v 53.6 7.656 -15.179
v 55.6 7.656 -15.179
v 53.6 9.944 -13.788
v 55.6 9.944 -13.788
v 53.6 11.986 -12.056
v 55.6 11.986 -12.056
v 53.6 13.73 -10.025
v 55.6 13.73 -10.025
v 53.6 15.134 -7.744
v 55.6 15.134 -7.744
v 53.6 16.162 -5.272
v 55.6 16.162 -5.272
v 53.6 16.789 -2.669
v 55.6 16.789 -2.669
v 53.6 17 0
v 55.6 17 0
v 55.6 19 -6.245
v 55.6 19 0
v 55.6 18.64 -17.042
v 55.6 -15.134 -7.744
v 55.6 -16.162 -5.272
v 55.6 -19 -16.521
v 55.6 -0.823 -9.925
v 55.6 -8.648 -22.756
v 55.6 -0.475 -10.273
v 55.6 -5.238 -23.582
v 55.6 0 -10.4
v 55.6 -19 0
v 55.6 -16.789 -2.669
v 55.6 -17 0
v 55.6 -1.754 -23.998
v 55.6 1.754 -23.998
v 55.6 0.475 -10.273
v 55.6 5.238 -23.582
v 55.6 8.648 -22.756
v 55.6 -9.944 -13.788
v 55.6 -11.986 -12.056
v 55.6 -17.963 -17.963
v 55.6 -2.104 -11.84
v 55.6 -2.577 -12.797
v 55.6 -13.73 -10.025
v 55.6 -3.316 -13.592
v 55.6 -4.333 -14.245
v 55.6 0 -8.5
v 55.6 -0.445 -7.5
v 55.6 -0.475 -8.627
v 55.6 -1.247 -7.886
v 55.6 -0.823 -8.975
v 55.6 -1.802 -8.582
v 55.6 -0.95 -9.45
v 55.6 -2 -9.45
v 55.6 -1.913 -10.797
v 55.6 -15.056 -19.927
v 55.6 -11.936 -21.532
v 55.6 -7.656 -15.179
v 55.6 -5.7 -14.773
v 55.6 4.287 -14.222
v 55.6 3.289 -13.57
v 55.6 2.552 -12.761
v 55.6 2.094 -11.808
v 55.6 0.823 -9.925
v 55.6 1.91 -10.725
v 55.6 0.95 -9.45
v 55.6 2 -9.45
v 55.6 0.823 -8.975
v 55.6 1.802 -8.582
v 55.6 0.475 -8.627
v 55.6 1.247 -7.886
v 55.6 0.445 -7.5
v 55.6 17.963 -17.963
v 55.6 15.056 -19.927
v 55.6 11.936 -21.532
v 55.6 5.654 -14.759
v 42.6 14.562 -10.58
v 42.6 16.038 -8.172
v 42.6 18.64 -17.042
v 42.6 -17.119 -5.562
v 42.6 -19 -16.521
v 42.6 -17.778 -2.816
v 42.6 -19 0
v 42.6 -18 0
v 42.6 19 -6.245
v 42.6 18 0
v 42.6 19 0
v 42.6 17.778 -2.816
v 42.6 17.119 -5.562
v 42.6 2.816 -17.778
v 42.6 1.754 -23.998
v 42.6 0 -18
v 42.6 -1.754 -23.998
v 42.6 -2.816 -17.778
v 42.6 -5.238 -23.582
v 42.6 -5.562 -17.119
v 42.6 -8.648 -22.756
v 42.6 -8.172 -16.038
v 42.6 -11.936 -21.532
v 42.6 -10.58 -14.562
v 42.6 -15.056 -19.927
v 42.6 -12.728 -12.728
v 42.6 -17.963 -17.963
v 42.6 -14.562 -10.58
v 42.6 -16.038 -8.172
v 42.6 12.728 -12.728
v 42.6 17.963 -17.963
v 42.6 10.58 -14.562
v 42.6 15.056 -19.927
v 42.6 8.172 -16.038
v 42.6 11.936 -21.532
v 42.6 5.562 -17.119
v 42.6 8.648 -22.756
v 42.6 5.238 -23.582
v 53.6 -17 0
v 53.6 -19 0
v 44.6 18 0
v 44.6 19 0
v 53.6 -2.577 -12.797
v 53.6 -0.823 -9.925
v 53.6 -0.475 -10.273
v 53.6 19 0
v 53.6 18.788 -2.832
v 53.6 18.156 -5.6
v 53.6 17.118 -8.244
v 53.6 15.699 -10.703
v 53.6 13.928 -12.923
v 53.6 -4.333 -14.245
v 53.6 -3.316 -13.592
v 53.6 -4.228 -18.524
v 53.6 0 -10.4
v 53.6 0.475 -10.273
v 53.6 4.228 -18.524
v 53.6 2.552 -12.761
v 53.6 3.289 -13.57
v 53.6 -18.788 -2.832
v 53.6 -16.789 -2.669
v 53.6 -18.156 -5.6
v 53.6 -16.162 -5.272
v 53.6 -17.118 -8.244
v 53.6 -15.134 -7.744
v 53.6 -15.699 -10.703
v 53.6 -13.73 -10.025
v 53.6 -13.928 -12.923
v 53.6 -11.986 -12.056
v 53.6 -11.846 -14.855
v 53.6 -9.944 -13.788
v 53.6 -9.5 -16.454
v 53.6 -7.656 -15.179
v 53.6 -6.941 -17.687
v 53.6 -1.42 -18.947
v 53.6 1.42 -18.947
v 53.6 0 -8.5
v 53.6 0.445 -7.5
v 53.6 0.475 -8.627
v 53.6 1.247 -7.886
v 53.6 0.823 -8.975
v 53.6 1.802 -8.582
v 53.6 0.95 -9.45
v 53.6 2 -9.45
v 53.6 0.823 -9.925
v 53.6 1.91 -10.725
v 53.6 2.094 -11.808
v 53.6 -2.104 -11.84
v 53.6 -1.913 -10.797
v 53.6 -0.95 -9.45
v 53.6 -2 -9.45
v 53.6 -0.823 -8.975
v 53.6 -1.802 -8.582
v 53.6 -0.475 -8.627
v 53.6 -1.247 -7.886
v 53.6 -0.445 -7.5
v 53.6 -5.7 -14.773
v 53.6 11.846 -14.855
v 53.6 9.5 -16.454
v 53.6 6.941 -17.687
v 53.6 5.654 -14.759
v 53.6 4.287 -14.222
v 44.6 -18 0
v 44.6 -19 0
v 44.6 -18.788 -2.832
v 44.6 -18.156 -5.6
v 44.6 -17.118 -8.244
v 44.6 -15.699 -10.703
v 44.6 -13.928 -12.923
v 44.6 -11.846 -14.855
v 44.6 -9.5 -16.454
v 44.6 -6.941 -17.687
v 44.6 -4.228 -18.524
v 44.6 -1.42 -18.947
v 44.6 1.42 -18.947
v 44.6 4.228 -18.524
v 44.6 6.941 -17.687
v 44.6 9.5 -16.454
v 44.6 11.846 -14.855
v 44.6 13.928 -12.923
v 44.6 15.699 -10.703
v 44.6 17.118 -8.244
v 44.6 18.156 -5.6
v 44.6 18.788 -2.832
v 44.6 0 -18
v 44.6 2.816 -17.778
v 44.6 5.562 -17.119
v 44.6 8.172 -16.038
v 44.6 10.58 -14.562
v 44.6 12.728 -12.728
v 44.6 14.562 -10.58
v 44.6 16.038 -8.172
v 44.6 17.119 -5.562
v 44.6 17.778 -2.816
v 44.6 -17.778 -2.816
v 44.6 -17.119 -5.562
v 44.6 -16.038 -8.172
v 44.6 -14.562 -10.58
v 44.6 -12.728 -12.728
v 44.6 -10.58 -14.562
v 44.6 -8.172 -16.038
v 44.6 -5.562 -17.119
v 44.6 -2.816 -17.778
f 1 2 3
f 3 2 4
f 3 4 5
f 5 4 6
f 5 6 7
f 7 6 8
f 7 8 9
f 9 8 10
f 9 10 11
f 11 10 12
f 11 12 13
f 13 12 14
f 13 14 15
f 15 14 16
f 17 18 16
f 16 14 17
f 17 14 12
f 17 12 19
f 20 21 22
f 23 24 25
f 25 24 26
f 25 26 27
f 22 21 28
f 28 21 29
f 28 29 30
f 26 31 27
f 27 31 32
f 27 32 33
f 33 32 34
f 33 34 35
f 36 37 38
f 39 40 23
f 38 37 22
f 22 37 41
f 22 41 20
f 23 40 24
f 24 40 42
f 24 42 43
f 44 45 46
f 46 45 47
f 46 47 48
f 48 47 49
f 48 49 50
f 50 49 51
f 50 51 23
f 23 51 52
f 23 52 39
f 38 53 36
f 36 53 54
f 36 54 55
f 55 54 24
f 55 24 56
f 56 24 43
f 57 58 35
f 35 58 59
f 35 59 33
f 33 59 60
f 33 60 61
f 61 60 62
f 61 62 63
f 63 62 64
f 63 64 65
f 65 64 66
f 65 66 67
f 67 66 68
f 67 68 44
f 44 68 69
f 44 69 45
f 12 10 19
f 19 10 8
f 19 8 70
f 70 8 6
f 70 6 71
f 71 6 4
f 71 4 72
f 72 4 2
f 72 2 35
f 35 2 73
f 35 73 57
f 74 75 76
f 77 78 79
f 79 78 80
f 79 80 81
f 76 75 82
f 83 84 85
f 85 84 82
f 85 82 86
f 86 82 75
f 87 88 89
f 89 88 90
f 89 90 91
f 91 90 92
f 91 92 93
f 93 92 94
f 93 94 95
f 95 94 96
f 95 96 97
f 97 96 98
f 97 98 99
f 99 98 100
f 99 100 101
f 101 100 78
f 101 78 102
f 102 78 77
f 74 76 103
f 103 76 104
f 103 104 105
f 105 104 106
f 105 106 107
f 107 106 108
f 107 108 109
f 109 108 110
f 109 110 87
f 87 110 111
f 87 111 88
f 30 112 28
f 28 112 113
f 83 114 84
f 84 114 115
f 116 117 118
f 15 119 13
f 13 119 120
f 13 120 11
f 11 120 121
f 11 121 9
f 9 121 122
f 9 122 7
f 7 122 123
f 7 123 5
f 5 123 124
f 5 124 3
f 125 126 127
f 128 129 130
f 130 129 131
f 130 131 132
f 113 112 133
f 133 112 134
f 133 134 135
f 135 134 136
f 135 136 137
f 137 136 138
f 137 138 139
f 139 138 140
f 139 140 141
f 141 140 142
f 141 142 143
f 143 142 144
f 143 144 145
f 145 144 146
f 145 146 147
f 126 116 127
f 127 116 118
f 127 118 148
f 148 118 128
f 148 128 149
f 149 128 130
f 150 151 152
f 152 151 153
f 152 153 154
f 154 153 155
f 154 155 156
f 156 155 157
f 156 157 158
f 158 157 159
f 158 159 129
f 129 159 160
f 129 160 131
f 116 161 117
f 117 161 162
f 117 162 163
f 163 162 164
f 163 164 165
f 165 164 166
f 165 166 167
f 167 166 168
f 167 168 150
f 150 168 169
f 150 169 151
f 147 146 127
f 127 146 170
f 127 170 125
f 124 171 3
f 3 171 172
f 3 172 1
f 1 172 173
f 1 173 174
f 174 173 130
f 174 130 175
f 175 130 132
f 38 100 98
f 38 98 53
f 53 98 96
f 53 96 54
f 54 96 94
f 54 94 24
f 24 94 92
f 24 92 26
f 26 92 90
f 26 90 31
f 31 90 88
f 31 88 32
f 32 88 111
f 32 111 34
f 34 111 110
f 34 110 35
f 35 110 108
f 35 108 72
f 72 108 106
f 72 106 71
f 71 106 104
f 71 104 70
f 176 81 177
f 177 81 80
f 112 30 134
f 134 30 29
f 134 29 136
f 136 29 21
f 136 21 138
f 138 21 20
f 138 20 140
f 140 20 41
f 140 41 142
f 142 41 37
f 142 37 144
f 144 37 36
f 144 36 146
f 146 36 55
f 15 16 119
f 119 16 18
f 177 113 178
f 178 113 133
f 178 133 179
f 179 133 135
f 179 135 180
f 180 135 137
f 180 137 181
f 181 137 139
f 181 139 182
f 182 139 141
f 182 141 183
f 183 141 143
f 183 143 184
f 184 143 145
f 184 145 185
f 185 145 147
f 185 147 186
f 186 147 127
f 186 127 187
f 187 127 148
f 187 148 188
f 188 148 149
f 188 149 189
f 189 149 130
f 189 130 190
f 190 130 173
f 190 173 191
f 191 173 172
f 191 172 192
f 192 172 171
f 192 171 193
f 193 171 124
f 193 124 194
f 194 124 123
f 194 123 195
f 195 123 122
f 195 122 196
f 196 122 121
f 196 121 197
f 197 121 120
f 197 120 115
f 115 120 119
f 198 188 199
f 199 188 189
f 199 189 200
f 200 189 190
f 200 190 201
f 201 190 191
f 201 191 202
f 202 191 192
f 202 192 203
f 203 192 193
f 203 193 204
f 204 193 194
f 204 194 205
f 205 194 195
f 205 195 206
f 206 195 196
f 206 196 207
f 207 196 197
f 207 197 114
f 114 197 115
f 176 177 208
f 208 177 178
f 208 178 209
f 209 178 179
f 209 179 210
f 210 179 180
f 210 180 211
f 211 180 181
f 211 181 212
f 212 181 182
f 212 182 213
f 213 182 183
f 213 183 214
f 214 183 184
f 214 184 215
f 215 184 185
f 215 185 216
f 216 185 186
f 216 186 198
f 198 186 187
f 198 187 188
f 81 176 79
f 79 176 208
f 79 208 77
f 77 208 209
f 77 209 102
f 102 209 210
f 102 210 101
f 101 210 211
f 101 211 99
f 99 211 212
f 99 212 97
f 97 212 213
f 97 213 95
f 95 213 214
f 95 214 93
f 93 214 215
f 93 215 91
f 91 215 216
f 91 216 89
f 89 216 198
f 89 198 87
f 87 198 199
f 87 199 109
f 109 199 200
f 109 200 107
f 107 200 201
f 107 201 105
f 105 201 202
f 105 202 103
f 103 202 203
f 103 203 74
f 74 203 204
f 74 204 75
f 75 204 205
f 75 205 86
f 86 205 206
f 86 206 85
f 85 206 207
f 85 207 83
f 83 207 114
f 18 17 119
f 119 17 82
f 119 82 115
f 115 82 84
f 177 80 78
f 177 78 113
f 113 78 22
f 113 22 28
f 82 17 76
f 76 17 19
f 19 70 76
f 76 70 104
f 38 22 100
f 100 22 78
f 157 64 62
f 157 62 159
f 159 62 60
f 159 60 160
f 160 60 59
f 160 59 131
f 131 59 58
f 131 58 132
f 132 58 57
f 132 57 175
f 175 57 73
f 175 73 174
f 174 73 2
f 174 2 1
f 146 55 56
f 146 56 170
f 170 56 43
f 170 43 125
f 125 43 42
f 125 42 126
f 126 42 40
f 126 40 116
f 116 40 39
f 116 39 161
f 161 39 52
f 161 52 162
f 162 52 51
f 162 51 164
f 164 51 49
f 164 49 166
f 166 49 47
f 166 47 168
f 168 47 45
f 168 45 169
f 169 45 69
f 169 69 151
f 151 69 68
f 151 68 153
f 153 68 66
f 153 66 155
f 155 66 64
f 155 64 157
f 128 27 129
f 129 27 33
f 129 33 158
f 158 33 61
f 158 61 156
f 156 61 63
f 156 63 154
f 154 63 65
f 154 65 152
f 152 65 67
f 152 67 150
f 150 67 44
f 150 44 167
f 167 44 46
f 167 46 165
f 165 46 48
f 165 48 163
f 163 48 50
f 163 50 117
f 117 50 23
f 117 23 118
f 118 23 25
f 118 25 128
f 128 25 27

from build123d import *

# Parameters (mm, degrees)
BOSS_EXTRU_1_DEPTH           = 114
ESQUISSE2_R                  = 22.55
ENL_V_MAT_EXTRU_2_DEPTH      = 5
ENL_V_START                  = -5
ESQUISSE4_R                  = 22.55
ENL_V_MAT_EXTRU_3_DEPTH      = 5
ESQUISSE5_R                  = 1
ENL_V_MAT_EXTRU_4_DEPTH      = 118.883477756
BOSS_EXTRU_2_START           = -2
BOSS_EXTRU_2_DEPTH           = 2
BOSS_EXTRU_3_START           = 9
BOSS_EXTRU_3_DEPTH           = 9
BOSS_EXTRU_4_START           = 2
BOSS_EXTRU_4_DEPTH           = 2
BOSS_EXTRU_5_START           = -2
BOSS_EXTRU_5_DEPTH           = 2
BOSS_EXTRU_6_START           = 9
BOSS_EXTRU_6_DEPTH           = 9
BOSS_EXTRU_7_START           = 2
BOSS_EXTRU_7_DEPTH           = 2
ESQUISSE12_W                 = 13.751826503
ESQUISSE12_H                 = 1
ESQUISSE12_W_2               = 11.167500513
ENL_V_MAT_EXTRU_5_DEPTH      = 95.05366831
BOSS_EXTRU_8_START           = -13
BOSS_EXTRU_8_DEPTH           = 13
BOSS_EXTRU_9_START           = -13
BOSS_EXTRU_9_DEPTH           = 13
ENL_V_MAT_EXTRU_6_DEPTH      = 94.846110875
ENL_V_MAT_EXTRU_7_DEPTH      = 119.048305907
ENL_V_MAT_EXTRU_7_DEPTH_BACK = 119.048305907
ESQUISSE16_R                 = 2
ENL_V_MAT_EXTRU_8_DEPTH      = 119.048305907
ENL_V_MAT_EXTRU_8_DEPTH_BACK = 119.048305907
ESQUISSE17_W                 = 59.614758746
ESQUISSE17_H                 = 46.78428057
ESQUISSE17_W_2               = 63.060495968
ESQUISSE17_H_2               = 47.274864603
BOSS_EXTRU_10_START          = -2
ESQUISSE18_R                 = 0.95
BOSS_EXTRU_10_DEPTH          = 2


with BuildPart() as part:
    # Esquisse1 → Boss.-Extru.1 (new body)
    with BuildSketch(Plane(origin=(0, 0, 0), x_dir=(0, 0, -1), z_dir=(1, 0, 0))):
        with BuildLine():
            Line((14.144270925, 14.14), (17.975320492, 17.947474134))
            ThreePointArc((17.975320492, 17.947474134), (24.05, 0), (17.975320492, -17.947474134))
            Line((17.975320492, -17.947474134), (14.144270925, -14.14))
            ThreePointArc((14.144270925, -14.14), (20, 0), (14.144270925, 14.14))
        make_face()
    extrude(amount=BOSS_EXTRU_1_DEPTH)

    # Esquisse2 → Enlèv. mat.-Extru.2 (cut)
    with BuildSketch(Plane.ZY):
        Circle(ESQUISSE2_R)
    extrude(amount=-ENL_V_MAT_EXTRU_2_DEPTH, mode=Mode.SUBTRACT)

    # Esquisse4 → Enlèv. mat.-Extru.3 (cut)
    with BuildSketch(Plane(origin=(114, 0, 0), x_dir=(0, 0, -1), z_dir=(1, 0, 0)).offset(ENL_V_START)):
        Circle(ESQUISSE4_R)
    extrude(amount=ENL_V_MAT_EXTRU_3_DEPTH, mode=Mode.SUBTRACT)

    # Esquisse5 → Enlèv. mat.-Extru.4 (cut, through all)
    with BuildSketch(Plane.XY):
        with Locations((2.5, 0)):
            Circle(ESQUISSE5_R)
        with Locations((111.5, 0)):
            Circle(ESQUISSE5_R)
    extrude(amount=-ENL_V_MAT_EXTRU_4_DEPTH, mode=Mode.SUBTRACT)

    # Esquisse6 → Boss.-Extru.2 (add)
    with BuildSketch(Plane(origin=(88.7, 0, 0), x_dir=(0, 0, -1), z_dir=(1, 0, 0)).offset(BOSS_EXTRU_2_START)):
        with BuildLine():
            Line((0, 17), (0, 20))
            ThreePointArc((0, 20), (20, 0), (0, -20))
            Line((0, -20), (0, -17))
            ThreePointArc((0, -17), (17, 0), (0, 17))
        make_face()
    extrude(amount=BOSS_EXTRU_2_DEPTH)

    # Esquisse7 → Boss.-Extru.3 (add)
    with BuildSketch(Plane.ZY.offset(-86.7).offset(BOSS_EXTRU_3_START)):
        with BuildLine():
            Line((0, 20), (0, 19))
            ThreePointArc((0, 19), (-19, 0), (0, -19))
            Line((0, -19), (0, -20))
            ThreePointArc((0, -20), (-20, 0), (0, 20))
        make_face()
    extrude(amount=-BOSS_EXTRU_3_DEPTH)

    # Esquisse8 → Boss.-Extru.4 (add)
    with BuildSketch(Plane.ZY.offset(-77.7).offset(BOSS_EXTRU_4_START)):
        with BuildLine():
            Line((0, 20), (0, 18))
            ThreePointArc((0, 18), (-18, 0), (0, -18))
            Line((0, -18), (0, -20))
            ThreePointArc((0, -20), (-20, 0), (0, 20))
        make_face()
    extrude(amount=-BOSS_EXTRU_4_DEPTH)

    # Esquisse9 → Boss.-Extru.5 (add)
    with BuildSketch(Plane(origin=(55.6, 0, 0), x_dir=(0, 0, -1), z_dir=(1, 0, 0)).offset(BOSS_EXTRU_5_START)):
        with BuildLine():
            Line((0, 20), (0, 17))
            ThreePointArc((0, 17), (17, 0), (0, -17))
            Line((0, -17), (0, -20))
            ThreePointArc((0, -20), (20, 0), (0, 20))
        make_face()
    extrude(amount=BOSS_EXTRU_5_DEPTH)

    # Esquisse10 → Boss.-Extru.6 (add)
    with BuildSketch(Plane.ZY.offset(-53.6).offset(BOSS_EXTRU_6_START)):
        with BuildLine():
            Line((0, 20), (0, 19))
            ThreePointArc((0, 19), (-19, 0), (0, -19))
            Line((0, -19), (0, -20))
            ThreePointArc((0, -20), (-20, 0), (0, 20))
        make_face()
    extrude(amount=-BOSS_EXTRU_6_DEPTH)

    # Esquisse11 → Boss.-Extru.7 (add)
    with BuildSketch(Plane.ZY.offset(-44.6).offset(BOSS_EXTRU_7_START)):
        with BuildLine():
            Line((0, 20), (0, 18))
            ThreePointArc((0, 18), (-18, 0), (0, -18))
            Line((0, -18), (0, -20))
            ThreePointArc((0, -20), (-20, 0), (0, 20))
        make_face()
    extrude(amount=-BOSS_EXTRU_7_DEPTH)

    # Esquisse12 → Enlèv. mat.-Extru.5 (cut, through all)
    with BuildSketch(Plane(origin=(88.7, 0, 0), x_dir=(0, 0, -1), z_dir=(1, 0, 0))):
        with Locations((6.875913252, -19.5)):
            Rectangle(ESQUISSE12_W, ESQUISSE12_H)
        with Locations((5.583750257, 19.5)):
            Rectangle(ESQUISSE12_W_2, ESQUISSE12_H)
    extrude(amount=-ENL_V_MAT_EXTRU_5_DEPTH, mode=Mode.SUBTRACT)

    # Esquisse13 → Boss.-Extru.8 (add)
    with BuildSketch(Plane(origin=(88.7, 0, 0), x_dir=(0, 0, -1), z_dir=(1, 0, 0)).offset(BOSS_EXTRU_8_START)):
        with BuildLine():
            Line((17.975320492, 17.947474134), (14.144270925, 14.14))
            ThreePointArc((14.144270925, 14.14), (10.480241973, 17.034216395), (6.244997998, 19))
            Line((6.244997998, 19), (17.4396757, 18.627232183))
            ThreePointArc((17.4396757, 18.627232183), (17.709986765, 18.289314213), (17.975320492, 17.947474134))
        make_face()
        with BuildLine():
            Line((14.144270925, -14.14), (17.975320492, -17.947474134))
            ThreePointArc((17.975320492, -17.947474134), (17.559611782, -18.478549847), (17.131891216, -19))
            Line((17.131891216, -19), (6.244997998, -19))
            ThreePointArc((6.244997998, -19), (10.480241973, -17.034216395), (14.144270925, -14.14))
        make_face()
    extrude(amount=BOSS_EXTRU_8_DEPTH)

    # Esquisse14 → Boss.-Extru.9 (add)
    with BuildSketch(Plane(origin=(55.6, 0, 0), x_dir=(0, 0, -1), z_dir=(1, 0, 0)).offset(BOSS_EXTRU_9_START)):
        with BuildLine():
            Line((14.144270925, 14.14), (17.975320492, 17.947474134))
            ThreePointArc((17.975320492, 17.947474134), (17.709986765, 18.289314213), (17.4396757, 18.627232183))
            Line((17.4396757, 18.627232183), (6.244997998, 19))
            ThreePointArc((6.244997998, 19), (10.480241973, 17.034216395), (14.144270925, 14.14))
        make_face()
        with BuildLine():
            Line((14.144270925, -14.14), (17.975320492, -17.947474134))
            ThreePointArc((17.975320492, -17.947474134), (17.559611782, -18.478549847), (17.131891216, -19))
            Line((17.131891216, -19), (6.244997998, -19))
            ThreePointArc((6.244997998, -19), (10.480241973, -17.034216395), (14.144270925, -14.14))
        make_face()
    extrude(amount=BOSS_EXTRU_9_DEPTH)

    # Esquisse15 → Enlèv. mat.-Extru.6 (cut, through all)
    with BuildSketch(Plane(origin=(88.7, 0, 0), x_dir=(0, 0, -1), z_dir=(1, 0, 0))):
        with BuildLine():
            Line((14.409304815, 20.298729325), (16.901493379, 24.760797344))
            Line((16.901493379, 24.760797344), (24.890475951, 20.298729325))
            Line((24.890475951, 20.298729325), (20.895984665, 15.394026057))
            ThreePointArc((20.895984665, 15.394026057), (17.822174246, 18.070587713), (14.409304815, 20.298729325))
        make_face()
        with BuildLine():
            Line((14.409304815, -20.298729325), (16.901493379, -24.760797344))
            Line((16.901493379, -24.760797344), (22.934233847, -18.464332541))
            Line((22.934233847, -18.464332541), (20.431131458, -15.848802481))
            ThreePointArc((20.431131458, -15.848802481), (17.561732891, -18.265269573), (14.409304815, -20.298729325))
        make_face()
    extrude(amount=-ENL_V_MAT_EXTRU_6_DEPTH, mode=Mode.SUBTRACT)

    # Esquisse16 → Enlèv. mat.-Extru.7 (cut, two sides: drawn at the far end of the back side and taken through both)
    with BuildSketch(Plane.XY.offset(-ENL_V_MAT_EXTRU_7_DEPTH_BACK)):
        with Locations((114, 13)):
            Circle(ESQUISSE16_R)
        with Locations((114, -13)):
            Circle(ESQUISSE16_R)
    extrude(amount=ENL_V_MAT_EXTRU_7_DEPTH + ENL_V_MAT_EXTRU_7_DEPTH_BACK, mode=Mode.SUBTRACT)

    # Esquisse17 → Enlèv. mat.-Extru.8 (cut, two sides: drawn at the far end of the back side and taken through both)
    with BuildSketch(Plane.XY.offset(-ENL_V_MAT_EXTRU_8_DEPTH_BACK)):
        with Locations((12.792620627, -4.392140285)):
            Rectangle(ESQUISSE17_W, ESQUISSE17_H)
        with Locations((87.130247984, -4.637432302)):
            Rectangle(ESQUISSE17_W_2, ESQUISSE17_H_2)
    extrude(amount=ENL_V_MAT_EXTRU_8_DEPTH + ENL_V_MAT_EXTRU_8_DEPTH_BACK, mode=Mode.SUBTRACT)

    # Esquisse18 → Boss.-Extru.10 (add)
    with BuildSketch(Plane(origin=(55.6, 0, 0), x_dir=(0, 0, -1), z_dir=(1, 0, 0)).offset(BOSS_EXTRU_10_START)):
        with BuildLine():
            ThreePointArc((9.45, 2), (7.45, 0), (9.45, -2))
            add(Edge.make_bspline(
                [(9.45, -2), (14.286652035, -1.165113332), (15.178639222, -7.655645719)],
                knots=[0, 0, 0, 1, 1, 1], degree=2))
            ThreePointArc((15.178639222, -7.655645719), (17, 0), (15.178639222, 7.655645719))
            add(Edge.make_bspline(
                [(9.45, 2), (14.286652035, 1.165113332), (15.178639222, 7.655645719)],
                knots=[0, 0, 0, 1, 1, 1], degree=2))
        make_face()
        with Locations((9.45, 0)):
            Circle(ESQUISSE18_R, mode=Mode.SUBTRACT)
    extrude(amount=BOSS_EXTRU_10_DEPTH)


solid = part.part
